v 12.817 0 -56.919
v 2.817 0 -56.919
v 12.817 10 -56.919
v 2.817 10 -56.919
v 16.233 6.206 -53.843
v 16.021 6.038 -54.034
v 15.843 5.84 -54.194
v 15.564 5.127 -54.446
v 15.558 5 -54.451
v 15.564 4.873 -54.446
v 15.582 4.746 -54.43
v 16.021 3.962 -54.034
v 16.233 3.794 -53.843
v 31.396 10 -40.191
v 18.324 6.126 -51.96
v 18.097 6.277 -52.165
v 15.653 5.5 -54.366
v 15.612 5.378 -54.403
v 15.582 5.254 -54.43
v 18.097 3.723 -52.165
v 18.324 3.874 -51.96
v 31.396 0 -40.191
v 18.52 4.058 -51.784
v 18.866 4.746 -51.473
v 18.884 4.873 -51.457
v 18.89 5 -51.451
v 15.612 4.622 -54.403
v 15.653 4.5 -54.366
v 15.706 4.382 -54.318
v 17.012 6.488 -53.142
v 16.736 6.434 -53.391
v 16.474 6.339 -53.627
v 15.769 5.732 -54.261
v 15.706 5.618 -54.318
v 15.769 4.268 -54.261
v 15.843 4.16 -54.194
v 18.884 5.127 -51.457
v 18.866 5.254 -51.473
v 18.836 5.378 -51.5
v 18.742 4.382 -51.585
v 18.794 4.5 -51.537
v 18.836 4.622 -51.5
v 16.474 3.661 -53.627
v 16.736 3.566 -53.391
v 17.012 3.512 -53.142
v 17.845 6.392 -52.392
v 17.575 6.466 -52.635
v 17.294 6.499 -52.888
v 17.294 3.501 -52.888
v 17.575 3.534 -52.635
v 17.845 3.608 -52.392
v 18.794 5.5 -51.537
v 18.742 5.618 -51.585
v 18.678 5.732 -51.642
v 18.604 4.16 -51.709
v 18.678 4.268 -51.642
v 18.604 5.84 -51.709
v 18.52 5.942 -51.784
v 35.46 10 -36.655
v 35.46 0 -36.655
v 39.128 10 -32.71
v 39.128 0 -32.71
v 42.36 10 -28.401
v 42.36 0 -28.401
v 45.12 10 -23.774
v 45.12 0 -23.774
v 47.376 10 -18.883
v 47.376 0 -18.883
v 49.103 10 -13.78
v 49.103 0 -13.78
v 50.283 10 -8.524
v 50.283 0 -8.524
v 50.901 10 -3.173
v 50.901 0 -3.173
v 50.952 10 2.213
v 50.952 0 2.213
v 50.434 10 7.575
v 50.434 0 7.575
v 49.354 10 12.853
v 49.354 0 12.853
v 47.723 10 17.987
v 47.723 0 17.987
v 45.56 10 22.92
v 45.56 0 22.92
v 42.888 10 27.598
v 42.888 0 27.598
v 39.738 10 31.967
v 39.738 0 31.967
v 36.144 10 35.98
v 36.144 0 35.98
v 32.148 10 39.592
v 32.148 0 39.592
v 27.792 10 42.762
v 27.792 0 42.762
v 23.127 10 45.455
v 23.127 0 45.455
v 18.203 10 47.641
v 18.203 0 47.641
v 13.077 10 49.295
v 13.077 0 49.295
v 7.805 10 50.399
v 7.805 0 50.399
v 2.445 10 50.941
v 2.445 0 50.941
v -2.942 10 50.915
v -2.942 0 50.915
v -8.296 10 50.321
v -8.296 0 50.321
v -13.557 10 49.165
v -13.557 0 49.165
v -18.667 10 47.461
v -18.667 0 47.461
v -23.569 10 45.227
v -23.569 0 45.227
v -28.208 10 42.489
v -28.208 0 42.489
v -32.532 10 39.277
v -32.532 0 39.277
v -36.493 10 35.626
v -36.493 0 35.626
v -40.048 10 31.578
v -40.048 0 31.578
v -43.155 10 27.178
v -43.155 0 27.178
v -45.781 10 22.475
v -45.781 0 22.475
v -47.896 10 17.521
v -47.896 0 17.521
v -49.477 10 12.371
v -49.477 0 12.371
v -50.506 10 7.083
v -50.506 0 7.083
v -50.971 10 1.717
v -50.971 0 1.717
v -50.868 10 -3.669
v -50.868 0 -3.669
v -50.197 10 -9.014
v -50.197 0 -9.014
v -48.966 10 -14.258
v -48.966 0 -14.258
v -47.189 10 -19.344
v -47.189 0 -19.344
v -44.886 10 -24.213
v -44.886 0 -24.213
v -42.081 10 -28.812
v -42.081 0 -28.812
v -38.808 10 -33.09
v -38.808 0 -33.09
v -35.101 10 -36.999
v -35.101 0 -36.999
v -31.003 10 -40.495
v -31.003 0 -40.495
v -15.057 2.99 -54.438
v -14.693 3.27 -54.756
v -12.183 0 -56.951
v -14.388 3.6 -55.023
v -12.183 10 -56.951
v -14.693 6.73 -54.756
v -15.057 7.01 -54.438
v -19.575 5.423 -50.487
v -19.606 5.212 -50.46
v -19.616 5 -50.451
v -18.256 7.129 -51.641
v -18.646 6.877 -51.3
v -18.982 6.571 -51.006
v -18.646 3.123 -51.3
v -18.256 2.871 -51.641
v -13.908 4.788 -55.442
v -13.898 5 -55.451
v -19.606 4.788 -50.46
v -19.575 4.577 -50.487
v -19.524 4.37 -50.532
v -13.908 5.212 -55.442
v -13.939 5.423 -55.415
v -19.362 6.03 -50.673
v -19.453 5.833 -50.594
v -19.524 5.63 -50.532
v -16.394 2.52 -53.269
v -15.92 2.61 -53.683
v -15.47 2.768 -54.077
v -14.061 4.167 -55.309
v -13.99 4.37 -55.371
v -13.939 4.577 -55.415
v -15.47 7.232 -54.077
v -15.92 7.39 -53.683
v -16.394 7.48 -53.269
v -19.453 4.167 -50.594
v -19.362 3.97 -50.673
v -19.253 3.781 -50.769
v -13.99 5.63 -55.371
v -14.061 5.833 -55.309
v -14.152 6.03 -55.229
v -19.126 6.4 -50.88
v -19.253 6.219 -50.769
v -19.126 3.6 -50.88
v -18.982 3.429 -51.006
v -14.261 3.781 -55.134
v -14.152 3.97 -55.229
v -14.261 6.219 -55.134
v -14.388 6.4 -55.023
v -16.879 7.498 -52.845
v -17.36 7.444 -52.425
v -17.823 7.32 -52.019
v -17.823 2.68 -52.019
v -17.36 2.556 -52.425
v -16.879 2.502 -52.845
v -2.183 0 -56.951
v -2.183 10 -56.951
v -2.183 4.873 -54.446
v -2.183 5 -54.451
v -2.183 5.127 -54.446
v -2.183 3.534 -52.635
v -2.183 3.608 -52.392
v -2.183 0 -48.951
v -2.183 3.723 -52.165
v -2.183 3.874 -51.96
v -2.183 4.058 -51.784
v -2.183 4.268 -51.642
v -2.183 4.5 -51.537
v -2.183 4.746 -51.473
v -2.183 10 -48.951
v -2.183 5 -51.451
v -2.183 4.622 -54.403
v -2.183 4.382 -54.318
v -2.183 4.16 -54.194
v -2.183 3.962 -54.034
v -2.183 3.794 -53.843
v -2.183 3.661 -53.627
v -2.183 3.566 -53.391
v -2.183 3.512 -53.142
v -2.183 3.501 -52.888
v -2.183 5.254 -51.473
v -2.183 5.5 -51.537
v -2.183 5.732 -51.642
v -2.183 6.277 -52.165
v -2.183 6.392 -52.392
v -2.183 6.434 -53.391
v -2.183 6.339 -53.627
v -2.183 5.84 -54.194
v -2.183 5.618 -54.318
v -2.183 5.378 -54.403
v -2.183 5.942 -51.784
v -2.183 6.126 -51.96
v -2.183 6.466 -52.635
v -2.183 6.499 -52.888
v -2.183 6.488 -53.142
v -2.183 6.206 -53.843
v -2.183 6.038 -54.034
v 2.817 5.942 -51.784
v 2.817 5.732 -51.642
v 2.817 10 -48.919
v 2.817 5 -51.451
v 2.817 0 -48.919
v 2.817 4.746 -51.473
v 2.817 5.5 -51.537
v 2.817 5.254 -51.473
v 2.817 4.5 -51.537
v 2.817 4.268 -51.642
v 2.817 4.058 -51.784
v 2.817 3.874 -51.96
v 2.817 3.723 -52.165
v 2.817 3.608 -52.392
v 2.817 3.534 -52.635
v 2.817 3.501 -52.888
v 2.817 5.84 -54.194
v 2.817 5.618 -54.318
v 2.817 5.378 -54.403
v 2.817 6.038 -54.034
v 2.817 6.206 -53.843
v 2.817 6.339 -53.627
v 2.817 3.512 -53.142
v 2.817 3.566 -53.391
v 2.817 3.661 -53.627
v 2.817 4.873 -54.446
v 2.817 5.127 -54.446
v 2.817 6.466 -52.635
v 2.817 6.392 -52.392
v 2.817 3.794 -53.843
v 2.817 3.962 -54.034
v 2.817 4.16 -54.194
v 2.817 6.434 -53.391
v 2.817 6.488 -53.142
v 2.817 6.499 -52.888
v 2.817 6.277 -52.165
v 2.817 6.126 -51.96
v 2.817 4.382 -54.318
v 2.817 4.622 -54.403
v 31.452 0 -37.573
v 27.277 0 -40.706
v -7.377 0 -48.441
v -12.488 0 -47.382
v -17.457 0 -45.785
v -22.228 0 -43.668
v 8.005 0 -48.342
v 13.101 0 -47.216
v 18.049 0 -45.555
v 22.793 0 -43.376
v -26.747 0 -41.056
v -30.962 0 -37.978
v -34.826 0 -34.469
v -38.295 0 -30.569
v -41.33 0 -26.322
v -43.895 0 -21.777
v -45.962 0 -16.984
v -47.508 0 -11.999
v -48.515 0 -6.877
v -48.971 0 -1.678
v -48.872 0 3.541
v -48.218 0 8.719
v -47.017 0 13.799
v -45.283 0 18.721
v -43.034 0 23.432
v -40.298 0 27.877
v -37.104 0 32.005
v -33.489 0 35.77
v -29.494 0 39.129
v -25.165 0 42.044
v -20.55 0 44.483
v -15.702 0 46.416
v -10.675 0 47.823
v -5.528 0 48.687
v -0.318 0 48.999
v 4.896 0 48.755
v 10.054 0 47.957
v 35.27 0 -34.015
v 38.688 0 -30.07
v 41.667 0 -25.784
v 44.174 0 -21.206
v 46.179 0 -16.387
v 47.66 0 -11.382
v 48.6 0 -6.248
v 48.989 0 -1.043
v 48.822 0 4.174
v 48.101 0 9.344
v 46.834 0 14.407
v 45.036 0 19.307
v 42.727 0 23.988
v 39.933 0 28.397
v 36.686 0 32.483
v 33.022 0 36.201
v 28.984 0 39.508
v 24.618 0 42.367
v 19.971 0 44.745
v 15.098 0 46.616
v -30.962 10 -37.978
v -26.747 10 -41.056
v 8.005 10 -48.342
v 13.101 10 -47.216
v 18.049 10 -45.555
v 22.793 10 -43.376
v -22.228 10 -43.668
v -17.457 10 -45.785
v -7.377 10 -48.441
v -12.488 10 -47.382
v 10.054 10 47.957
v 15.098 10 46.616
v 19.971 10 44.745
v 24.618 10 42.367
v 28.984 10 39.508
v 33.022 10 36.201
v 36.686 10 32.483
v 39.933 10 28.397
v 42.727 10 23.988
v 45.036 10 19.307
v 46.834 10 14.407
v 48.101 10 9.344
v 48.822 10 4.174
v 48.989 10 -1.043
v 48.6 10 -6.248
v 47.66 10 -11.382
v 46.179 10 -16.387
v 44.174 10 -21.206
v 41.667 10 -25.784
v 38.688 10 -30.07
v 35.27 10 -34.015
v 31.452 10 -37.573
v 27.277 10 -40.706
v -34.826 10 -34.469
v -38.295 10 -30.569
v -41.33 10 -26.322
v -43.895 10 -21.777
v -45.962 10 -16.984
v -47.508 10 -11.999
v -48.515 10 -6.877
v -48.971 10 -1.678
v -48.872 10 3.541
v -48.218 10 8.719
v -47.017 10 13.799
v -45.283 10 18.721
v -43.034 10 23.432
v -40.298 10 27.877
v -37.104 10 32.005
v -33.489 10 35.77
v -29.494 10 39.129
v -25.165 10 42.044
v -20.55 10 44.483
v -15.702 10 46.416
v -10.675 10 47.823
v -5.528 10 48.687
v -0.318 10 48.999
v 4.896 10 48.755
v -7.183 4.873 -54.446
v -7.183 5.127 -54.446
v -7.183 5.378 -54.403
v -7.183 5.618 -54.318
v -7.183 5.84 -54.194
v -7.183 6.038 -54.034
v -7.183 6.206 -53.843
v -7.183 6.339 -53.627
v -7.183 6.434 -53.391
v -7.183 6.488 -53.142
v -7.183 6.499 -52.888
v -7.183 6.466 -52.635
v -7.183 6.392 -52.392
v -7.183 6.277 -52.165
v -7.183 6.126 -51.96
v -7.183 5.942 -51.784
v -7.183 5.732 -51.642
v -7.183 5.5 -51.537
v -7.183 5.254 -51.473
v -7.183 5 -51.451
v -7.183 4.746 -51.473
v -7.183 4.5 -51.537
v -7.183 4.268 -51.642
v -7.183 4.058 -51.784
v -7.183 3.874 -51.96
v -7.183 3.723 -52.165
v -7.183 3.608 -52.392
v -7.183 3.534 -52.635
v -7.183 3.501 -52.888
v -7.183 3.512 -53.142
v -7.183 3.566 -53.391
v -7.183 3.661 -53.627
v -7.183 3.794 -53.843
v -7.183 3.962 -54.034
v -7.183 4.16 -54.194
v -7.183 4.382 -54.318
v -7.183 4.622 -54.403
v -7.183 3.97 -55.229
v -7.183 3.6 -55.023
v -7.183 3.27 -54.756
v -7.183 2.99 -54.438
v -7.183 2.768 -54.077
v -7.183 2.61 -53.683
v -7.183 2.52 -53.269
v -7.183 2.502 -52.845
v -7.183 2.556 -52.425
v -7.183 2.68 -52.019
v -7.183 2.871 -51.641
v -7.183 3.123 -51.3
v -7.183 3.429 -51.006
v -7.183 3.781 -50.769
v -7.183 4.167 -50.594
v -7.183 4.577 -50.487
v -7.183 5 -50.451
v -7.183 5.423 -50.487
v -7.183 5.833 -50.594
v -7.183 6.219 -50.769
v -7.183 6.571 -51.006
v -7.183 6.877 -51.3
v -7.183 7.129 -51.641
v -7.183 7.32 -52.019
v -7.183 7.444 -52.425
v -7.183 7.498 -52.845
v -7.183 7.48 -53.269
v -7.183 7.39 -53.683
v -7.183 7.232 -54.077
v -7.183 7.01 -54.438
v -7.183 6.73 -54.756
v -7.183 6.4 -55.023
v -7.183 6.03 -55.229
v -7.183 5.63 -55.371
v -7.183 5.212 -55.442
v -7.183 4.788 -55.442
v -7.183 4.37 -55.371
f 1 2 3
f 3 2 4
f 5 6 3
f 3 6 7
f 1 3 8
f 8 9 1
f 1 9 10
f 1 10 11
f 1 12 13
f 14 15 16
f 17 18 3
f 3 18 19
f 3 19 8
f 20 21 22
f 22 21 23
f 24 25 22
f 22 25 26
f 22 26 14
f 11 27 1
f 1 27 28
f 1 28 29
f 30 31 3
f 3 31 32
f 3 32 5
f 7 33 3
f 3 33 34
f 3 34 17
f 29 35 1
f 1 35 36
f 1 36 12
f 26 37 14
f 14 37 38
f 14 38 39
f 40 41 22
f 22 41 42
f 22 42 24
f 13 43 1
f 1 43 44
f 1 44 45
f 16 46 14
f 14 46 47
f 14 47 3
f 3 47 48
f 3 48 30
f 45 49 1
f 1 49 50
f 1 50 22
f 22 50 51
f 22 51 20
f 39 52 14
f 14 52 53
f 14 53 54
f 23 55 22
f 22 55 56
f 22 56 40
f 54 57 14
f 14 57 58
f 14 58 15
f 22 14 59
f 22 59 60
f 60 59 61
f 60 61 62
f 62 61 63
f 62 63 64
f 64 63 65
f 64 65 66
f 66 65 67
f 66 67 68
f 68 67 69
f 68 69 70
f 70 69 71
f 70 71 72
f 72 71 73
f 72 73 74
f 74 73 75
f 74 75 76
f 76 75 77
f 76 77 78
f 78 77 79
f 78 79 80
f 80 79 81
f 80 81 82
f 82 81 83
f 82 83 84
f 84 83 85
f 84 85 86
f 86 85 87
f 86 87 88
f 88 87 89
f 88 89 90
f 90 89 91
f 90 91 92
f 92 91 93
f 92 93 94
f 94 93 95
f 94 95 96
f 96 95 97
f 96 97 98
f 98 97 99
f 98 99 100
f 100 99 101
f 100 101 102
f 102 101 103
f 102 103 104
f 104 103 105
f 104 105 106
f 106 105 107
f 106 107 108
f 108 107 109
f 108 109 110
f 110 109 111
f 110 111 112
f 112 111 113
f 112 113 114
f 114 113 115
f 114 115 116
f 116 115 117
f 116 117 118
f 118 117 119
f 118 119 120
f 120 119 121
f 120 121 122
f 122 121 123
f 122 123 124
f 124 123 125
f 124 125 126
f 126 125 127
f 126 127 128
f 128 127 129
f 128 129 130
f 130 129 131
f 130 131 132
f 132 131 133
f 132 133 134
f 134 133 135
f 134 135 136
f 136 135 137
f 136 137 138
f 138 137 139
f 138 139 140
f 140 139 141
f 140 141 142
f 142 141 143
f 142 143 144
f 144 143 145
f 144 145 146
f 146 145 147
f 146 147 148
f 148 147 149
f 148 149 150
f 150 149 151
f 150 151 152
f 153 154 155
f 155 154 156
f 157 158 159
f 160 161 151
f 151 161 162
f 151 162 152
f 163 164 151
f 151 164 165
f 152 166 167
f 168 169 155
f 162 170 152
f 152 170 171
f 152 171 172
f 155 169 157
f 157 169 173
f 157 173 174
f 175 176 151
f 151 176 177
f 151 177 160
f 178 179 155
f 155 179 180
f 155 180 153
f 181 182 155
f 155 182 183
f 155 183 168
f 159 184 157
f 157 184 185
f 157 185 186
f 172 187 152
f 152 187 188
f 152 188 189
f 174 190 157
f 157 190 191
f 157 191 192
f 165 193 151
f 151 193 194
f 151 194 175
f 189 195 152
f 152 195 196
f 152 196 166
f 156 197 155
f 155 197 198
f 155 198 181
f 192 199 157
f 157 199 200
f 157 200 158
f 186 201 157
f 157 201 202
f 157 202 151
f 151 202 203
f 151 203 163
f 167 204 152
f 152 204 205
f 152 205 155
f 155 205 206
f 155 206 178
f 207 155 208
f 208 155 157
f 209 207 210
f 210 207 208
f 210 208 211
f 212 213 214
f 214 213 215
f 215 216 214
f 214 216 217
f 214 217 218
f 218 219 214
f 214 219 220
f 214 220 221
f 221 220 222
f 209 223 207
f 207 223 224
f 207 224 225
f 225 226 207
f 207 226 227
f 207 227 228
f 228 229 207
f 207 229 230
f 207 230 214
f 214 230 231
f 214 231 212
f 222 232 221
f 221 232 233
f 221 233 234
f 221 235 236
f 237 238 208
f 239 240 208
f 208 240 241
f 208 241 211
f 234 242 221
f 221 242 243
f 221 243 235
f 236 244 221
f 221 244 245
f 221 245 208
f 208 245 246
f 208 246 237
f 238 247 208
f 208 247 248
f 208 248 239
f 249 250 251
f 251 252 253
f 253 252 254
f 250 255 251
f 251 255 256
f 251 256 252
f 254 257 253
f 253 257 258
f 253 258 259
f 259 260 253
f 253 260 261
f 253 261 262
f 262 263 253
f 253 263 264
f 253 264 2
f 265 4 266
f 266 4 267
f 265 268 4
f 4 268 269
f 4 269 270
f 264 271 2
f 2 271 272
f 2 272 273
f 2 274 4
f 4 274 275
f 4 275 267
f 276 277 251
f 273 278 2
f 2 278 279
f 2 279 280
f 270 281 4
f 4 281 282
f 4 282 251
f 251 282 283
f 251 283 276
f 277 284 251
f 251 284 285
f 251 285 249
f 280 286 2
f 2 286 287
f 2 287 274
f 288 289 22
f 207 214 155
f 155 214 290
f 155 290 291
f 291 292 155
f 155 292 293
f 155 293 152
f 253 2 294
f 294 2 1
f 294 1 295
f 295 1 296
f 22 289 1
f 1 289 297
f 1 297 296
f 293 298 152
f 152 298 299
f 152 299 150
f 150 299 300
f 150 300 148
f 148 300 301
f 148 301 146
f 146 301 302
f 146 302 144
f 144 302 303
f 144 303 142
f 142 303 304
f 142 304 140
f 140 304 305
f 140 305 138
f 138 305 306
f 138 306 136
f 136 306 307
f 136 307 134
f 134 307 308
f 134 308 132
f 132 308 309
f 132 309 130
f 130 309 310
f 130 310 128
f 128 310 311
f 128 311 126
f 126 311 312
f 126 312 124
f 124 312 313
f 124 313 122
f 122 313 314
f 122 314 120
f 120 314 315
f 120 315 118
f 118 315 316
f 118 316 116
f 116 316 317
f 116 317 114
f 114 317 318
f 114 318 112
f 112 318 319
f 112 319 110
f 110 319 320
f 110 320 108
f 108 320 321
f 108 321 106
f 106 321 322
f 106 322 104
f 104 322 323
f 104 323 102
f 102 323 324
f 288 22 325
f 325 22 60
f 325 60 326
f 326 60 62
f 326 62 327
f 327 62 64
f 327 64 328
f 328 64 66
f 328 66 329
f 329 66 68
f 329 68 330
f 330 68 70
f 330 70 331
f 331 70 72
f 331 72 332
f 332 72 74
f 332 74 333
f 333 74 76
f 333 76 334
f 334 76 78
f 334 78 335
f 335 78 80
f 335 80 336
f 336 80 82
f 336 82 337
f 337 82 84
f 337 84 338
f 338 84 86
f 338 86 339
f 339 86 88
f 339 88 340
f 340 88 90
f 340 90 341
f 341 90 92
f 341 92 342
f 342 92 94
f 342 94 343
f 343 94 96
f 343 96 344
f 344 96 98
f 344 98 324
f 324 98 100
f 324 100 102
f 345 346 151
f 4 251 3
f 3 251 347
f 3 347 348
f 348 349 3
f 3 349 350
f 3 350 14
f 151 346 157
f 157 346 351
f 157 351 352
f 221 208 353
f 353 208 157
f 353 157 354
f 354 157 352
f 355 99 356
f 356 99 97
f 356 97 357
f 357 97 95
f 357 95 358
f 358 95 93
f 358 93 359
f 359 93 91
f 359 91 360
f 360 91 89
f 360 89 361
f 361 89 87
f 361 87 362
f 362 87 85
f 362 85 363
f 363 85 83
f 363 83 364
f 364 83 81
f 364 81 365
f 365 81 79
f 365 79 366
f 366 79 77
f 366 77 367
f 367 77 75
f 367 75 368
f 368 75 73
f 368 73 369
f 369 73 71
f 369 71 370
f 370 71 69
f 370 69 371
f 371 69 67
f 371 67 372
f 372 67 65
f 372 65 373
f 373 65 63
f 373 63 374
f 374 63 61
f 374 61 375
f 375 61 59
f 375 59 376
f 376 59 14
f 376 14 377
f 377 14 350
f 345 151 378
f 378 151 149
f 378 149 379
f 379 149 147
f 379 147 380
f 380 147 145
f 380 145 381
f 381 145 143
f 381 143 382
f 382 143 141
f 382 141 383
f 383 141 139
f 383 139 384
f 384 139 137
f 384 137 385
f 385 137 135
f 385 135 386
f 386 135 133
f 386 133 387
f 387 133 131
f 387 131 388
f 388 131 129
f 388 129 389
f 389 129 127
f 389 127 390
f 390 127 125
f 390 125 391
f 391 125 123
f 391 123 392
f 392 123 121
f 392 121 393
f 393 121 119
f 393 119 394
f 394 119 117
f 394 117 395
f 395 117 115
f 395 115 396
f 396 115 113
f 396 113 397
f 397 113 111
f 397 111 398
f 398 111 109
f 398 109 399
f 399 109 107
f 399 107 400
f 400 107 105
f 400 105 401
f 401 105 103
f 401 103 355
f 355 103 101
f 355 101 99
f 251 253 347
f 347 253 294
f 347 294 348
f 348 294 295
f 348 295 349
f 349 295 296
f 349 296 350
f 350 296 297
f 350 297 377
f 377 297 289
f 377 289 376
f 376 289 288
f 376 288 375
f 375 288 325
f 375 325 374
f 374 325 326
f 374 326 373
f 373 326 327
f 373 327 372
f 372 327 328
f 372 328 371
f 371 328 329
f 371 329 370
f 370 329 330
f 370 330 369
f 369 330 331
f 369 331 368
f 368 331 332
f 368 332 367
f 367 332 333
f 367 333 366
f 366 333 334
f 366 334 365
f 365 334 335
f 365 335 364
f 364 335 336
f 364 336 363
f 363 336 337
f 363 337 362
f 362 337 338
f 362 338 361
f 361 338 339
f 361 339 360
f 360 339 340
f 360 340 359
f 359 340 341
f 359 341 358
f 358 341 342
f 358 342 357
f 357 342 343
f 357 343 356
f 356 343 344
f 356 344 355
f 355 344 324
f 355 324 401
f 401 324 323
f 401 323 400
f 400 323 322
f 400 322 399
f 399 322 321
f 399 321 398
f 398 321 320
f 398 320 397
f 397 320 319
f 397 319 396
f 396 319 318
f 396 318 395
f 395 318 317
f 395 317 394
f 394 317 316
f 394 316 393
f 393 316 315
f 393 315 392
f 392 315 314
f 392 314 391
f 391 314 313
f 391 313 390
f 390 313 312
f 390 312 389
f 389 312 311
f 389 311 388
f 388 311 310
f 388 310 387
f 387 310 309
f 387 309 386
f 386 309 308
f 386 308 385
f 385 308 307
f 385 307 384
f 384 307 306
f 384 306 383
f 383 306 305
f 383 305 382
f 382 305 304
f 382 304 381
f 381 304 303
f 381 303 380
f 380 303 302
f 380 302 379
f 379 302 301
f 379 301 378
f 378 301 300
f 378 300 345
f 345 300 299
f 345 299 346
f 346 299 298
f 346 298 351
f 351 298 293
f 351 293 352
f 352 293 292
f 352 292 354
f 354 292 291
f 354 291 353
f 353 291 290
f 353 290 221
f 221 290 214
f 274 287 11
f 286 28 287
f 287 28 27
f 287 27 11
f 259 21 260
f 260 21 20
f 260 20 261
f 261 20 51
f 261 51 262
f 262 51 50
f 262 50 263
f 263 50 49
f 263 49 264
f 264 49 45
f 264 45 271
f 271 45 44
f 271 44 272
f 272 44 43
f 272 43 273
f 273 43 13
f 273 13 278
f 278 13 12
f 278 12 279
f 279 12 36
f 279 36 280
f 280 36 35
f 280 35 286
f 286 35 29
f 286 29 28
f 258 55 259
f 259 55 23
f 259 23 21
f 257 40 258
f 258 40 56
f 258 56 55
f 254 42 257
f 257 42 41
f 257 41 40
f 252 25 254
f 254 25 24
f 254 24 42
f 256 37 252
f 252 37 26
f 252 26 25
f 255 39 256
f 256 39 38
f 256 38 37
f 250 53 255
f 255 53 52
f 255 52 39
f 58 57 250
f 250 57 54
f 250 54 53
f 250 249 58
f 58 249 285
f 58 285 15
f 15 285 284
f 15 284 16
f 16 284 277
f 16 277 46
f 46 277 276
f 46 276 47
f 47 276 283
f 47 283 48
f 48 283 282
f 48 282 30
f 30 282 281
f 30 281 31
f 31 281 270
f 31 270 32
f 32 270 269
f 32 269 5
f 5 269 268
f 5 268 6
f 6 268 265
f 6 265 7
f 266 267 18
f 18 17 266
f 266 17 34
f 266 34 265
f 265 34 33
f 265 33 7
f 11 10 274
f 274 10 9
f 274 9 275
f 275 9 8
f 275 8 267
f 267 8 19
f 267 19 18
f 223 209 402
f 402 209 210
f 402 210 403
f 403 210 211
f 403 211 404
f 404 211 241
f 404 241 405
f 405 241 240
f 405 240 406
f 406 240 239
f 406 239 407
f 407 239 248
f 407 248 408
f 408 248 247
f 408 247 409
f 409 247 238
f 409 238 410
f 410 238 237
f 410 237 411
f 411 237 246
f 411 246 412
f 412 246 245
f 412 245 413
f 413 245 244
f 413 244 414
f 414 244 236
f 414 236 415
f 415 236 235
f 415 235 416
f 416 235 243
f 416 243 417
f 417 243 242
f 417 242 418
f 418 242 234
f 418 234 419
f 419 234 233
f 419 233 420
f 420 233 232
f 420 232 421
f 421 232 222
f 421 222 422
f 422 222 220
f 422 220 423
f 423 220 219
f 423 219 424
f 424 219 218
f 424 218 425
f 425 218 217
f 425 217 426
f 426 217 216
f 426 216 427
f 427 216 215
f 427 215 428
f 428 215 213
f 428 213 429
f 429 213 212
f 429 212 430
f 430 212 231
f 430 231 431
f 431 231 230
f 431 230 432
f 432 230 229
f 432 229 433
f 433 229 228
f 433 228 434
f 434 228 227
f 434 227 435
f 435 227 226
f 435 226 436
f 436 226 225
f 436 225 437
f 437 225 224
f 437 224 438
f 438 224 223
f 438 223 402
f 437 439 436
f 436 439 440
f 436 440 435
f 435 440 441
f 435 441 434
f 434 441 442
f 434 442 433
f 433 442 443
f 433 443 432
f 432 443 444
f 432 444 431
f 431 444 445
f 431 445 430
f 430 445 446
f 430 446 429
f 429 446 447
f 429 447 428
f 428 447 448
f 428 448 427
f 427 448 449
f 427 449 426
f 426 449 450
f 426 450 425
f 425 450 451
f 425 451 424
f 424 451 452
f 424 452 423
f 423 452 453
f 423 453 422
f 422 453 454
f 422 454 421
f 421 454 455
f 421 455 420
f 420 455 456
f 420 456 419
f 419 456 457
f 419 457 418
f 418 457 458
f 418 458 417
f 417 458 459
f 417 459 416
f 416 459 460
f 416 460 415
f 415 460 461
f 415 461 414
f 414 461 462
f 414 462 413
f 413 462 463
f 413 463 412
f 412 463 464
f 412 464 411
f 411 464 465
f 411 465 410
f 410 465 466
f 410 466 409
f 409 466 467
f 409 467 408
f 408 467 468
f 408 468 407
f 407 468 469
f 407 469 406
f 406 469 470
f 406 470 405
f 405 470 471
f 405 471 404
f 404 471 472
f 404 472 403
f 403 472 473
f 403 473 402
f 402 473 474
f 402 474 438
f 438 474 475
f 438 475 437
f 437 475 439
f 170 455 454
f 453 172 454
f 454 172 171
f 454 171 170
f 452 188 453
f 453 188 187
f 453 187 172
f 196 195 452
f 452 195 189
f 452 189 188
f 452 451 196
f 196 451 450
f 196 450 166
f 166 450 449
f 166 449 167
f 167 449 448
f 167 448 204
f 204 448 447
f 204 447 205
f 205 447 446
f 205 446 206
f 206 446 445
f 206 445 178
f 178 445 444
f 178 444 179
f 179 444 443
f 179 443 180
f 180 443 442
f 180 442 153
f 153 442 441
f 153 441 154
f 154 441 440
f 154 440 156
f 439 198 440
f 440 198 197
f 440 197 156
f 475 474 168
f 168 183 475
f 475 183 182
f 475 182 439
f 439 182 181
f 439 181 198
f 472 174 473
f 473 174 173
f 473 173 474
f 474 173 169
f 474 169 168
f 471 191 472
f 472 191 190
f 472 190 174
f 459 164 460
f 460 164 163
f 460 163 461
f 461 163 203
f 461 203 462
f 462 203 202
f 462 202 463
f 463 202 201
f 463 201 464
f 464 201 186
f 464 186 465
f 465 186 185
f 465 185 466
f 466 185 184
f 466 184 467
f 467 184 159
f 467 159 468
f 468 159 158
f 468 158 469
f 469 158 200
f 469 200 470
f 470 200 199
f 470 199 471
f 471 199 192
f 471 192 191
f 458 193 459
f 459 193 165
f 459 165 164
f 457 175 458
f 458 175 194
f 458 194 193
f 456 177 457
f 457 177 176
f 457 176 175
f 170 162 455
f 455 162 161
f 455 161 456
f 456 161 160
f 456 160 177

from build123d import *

# Parameters (mm, degrees)
BOSS_EXTRUDE1_DEPTH                                = 10
SKETCH2_W                                          = 49
SKETCH2_H                                          = 10
SKETCH3_W                                          = 1.25
SKETCH3_H                                          = 48.182761149
CBORE_FOR_M2_5_HEX_HEAD_MACHINE_SCREW1_D           = 3
CBORE_FOR_M2_5_HEX_HEAD_MACHINE_SCREW1_DEPTH       = 70.616262821
CBORE_FOR_M2_5_HEX_HEAD_MACHINE_SCREW1_CBORE_D     = 5
CBORE_FOR_M2_5_HEX_HEAD_MACHINE_SCREW1_CBORE_DEPTH = 12.433501671


with BuildPart() as part:
    # Sketch1 → Boss-Extrude1 (new body)
    with BuildSketch(Plane(origin=(0, 10, 0), x_dir=(1, 0, 0), z_dir=(0, 1, 0))):
        with BuildLine():
            Line((2.817238851, 56.91894485), (2.817238851, 48.91894485))
            ThreePointArc((2.817238851, 48.91894485), (0.317652576, 48.998970365), (-2.182761149, 48.951359059))
            Line((-2.182761149, 48.951359059), (-2.182761149, 56.951359059))
            Line((-2.182761149, 56.951359059), (-12.182761149, 56.951359059))
            Line((-12.182761149, 56.951359059), (-31.002590128, 40.494930613))
            ThreePointArc((-31.002590128, 40.494930613), (-0.248614246, -50.999394025), (31.395920468, 40.190747417))
            Line((31.395920468, 40.190747417), (12.817238851, 56.91894485))
            Line((12.817238851, 56.91894485), (2.817238851, 56.91894485))
        make_face()
    extrude(amount=-BOSS_EXTRUDE1_DEPTH)

    # Sketch2 → Cut-Revolve1 (revolve, cut)
    with BuildSketch(Plane.XY):
        with Locations((24.5, 5)):
            Rectangle(SKETCH2_W, SKETCH2_H)
    revolve(axis=Axis((0, 10, 0), (0, -1, 0)), mode=Mode.SUBTRACT)

    # Sketch3 → Ø2.5 (2.5) Diameter Hole1 (revolve, cut)
    with BuildSketch(Plane(origin=(2.817238851, 5, -52.91894485), x_dir=(0, 0, 1), z_dir=(0, 1, 0))):
        with Locations((0.625, 24.091380575)):
            Rectangle(SKETCH3_W, SKETCH3_H)
    revolve(axis=Axis((-3.532761149, 5, -52.91894485), (1, 0, 0)), mode=Mode.SUBTRACT)

    # CBORE for M2.5 Hex Head Machine Screw1
    with Locations(Plane.ZY.offset(19.616262821)):
        with Locations((-52.951359059, 5)):
            CounterBoreHole(CBORE_FOR_M2_5_HEX_HEAD_MACHINE_SCREW1_D / 2, CBORE_FOR_M2_5_HEX_HEAD_MACHINE_SCREW1_CBORE_D / 2, CBORE_FOR_M2_5_HEX_HEAD_MACHINE_SCREW1_CBORE_DEPTH, depth=CBORE_FOR_M2_5_HEX_HEAD_MACHINE_SCREW1_DEPTH)


solid = part.part
